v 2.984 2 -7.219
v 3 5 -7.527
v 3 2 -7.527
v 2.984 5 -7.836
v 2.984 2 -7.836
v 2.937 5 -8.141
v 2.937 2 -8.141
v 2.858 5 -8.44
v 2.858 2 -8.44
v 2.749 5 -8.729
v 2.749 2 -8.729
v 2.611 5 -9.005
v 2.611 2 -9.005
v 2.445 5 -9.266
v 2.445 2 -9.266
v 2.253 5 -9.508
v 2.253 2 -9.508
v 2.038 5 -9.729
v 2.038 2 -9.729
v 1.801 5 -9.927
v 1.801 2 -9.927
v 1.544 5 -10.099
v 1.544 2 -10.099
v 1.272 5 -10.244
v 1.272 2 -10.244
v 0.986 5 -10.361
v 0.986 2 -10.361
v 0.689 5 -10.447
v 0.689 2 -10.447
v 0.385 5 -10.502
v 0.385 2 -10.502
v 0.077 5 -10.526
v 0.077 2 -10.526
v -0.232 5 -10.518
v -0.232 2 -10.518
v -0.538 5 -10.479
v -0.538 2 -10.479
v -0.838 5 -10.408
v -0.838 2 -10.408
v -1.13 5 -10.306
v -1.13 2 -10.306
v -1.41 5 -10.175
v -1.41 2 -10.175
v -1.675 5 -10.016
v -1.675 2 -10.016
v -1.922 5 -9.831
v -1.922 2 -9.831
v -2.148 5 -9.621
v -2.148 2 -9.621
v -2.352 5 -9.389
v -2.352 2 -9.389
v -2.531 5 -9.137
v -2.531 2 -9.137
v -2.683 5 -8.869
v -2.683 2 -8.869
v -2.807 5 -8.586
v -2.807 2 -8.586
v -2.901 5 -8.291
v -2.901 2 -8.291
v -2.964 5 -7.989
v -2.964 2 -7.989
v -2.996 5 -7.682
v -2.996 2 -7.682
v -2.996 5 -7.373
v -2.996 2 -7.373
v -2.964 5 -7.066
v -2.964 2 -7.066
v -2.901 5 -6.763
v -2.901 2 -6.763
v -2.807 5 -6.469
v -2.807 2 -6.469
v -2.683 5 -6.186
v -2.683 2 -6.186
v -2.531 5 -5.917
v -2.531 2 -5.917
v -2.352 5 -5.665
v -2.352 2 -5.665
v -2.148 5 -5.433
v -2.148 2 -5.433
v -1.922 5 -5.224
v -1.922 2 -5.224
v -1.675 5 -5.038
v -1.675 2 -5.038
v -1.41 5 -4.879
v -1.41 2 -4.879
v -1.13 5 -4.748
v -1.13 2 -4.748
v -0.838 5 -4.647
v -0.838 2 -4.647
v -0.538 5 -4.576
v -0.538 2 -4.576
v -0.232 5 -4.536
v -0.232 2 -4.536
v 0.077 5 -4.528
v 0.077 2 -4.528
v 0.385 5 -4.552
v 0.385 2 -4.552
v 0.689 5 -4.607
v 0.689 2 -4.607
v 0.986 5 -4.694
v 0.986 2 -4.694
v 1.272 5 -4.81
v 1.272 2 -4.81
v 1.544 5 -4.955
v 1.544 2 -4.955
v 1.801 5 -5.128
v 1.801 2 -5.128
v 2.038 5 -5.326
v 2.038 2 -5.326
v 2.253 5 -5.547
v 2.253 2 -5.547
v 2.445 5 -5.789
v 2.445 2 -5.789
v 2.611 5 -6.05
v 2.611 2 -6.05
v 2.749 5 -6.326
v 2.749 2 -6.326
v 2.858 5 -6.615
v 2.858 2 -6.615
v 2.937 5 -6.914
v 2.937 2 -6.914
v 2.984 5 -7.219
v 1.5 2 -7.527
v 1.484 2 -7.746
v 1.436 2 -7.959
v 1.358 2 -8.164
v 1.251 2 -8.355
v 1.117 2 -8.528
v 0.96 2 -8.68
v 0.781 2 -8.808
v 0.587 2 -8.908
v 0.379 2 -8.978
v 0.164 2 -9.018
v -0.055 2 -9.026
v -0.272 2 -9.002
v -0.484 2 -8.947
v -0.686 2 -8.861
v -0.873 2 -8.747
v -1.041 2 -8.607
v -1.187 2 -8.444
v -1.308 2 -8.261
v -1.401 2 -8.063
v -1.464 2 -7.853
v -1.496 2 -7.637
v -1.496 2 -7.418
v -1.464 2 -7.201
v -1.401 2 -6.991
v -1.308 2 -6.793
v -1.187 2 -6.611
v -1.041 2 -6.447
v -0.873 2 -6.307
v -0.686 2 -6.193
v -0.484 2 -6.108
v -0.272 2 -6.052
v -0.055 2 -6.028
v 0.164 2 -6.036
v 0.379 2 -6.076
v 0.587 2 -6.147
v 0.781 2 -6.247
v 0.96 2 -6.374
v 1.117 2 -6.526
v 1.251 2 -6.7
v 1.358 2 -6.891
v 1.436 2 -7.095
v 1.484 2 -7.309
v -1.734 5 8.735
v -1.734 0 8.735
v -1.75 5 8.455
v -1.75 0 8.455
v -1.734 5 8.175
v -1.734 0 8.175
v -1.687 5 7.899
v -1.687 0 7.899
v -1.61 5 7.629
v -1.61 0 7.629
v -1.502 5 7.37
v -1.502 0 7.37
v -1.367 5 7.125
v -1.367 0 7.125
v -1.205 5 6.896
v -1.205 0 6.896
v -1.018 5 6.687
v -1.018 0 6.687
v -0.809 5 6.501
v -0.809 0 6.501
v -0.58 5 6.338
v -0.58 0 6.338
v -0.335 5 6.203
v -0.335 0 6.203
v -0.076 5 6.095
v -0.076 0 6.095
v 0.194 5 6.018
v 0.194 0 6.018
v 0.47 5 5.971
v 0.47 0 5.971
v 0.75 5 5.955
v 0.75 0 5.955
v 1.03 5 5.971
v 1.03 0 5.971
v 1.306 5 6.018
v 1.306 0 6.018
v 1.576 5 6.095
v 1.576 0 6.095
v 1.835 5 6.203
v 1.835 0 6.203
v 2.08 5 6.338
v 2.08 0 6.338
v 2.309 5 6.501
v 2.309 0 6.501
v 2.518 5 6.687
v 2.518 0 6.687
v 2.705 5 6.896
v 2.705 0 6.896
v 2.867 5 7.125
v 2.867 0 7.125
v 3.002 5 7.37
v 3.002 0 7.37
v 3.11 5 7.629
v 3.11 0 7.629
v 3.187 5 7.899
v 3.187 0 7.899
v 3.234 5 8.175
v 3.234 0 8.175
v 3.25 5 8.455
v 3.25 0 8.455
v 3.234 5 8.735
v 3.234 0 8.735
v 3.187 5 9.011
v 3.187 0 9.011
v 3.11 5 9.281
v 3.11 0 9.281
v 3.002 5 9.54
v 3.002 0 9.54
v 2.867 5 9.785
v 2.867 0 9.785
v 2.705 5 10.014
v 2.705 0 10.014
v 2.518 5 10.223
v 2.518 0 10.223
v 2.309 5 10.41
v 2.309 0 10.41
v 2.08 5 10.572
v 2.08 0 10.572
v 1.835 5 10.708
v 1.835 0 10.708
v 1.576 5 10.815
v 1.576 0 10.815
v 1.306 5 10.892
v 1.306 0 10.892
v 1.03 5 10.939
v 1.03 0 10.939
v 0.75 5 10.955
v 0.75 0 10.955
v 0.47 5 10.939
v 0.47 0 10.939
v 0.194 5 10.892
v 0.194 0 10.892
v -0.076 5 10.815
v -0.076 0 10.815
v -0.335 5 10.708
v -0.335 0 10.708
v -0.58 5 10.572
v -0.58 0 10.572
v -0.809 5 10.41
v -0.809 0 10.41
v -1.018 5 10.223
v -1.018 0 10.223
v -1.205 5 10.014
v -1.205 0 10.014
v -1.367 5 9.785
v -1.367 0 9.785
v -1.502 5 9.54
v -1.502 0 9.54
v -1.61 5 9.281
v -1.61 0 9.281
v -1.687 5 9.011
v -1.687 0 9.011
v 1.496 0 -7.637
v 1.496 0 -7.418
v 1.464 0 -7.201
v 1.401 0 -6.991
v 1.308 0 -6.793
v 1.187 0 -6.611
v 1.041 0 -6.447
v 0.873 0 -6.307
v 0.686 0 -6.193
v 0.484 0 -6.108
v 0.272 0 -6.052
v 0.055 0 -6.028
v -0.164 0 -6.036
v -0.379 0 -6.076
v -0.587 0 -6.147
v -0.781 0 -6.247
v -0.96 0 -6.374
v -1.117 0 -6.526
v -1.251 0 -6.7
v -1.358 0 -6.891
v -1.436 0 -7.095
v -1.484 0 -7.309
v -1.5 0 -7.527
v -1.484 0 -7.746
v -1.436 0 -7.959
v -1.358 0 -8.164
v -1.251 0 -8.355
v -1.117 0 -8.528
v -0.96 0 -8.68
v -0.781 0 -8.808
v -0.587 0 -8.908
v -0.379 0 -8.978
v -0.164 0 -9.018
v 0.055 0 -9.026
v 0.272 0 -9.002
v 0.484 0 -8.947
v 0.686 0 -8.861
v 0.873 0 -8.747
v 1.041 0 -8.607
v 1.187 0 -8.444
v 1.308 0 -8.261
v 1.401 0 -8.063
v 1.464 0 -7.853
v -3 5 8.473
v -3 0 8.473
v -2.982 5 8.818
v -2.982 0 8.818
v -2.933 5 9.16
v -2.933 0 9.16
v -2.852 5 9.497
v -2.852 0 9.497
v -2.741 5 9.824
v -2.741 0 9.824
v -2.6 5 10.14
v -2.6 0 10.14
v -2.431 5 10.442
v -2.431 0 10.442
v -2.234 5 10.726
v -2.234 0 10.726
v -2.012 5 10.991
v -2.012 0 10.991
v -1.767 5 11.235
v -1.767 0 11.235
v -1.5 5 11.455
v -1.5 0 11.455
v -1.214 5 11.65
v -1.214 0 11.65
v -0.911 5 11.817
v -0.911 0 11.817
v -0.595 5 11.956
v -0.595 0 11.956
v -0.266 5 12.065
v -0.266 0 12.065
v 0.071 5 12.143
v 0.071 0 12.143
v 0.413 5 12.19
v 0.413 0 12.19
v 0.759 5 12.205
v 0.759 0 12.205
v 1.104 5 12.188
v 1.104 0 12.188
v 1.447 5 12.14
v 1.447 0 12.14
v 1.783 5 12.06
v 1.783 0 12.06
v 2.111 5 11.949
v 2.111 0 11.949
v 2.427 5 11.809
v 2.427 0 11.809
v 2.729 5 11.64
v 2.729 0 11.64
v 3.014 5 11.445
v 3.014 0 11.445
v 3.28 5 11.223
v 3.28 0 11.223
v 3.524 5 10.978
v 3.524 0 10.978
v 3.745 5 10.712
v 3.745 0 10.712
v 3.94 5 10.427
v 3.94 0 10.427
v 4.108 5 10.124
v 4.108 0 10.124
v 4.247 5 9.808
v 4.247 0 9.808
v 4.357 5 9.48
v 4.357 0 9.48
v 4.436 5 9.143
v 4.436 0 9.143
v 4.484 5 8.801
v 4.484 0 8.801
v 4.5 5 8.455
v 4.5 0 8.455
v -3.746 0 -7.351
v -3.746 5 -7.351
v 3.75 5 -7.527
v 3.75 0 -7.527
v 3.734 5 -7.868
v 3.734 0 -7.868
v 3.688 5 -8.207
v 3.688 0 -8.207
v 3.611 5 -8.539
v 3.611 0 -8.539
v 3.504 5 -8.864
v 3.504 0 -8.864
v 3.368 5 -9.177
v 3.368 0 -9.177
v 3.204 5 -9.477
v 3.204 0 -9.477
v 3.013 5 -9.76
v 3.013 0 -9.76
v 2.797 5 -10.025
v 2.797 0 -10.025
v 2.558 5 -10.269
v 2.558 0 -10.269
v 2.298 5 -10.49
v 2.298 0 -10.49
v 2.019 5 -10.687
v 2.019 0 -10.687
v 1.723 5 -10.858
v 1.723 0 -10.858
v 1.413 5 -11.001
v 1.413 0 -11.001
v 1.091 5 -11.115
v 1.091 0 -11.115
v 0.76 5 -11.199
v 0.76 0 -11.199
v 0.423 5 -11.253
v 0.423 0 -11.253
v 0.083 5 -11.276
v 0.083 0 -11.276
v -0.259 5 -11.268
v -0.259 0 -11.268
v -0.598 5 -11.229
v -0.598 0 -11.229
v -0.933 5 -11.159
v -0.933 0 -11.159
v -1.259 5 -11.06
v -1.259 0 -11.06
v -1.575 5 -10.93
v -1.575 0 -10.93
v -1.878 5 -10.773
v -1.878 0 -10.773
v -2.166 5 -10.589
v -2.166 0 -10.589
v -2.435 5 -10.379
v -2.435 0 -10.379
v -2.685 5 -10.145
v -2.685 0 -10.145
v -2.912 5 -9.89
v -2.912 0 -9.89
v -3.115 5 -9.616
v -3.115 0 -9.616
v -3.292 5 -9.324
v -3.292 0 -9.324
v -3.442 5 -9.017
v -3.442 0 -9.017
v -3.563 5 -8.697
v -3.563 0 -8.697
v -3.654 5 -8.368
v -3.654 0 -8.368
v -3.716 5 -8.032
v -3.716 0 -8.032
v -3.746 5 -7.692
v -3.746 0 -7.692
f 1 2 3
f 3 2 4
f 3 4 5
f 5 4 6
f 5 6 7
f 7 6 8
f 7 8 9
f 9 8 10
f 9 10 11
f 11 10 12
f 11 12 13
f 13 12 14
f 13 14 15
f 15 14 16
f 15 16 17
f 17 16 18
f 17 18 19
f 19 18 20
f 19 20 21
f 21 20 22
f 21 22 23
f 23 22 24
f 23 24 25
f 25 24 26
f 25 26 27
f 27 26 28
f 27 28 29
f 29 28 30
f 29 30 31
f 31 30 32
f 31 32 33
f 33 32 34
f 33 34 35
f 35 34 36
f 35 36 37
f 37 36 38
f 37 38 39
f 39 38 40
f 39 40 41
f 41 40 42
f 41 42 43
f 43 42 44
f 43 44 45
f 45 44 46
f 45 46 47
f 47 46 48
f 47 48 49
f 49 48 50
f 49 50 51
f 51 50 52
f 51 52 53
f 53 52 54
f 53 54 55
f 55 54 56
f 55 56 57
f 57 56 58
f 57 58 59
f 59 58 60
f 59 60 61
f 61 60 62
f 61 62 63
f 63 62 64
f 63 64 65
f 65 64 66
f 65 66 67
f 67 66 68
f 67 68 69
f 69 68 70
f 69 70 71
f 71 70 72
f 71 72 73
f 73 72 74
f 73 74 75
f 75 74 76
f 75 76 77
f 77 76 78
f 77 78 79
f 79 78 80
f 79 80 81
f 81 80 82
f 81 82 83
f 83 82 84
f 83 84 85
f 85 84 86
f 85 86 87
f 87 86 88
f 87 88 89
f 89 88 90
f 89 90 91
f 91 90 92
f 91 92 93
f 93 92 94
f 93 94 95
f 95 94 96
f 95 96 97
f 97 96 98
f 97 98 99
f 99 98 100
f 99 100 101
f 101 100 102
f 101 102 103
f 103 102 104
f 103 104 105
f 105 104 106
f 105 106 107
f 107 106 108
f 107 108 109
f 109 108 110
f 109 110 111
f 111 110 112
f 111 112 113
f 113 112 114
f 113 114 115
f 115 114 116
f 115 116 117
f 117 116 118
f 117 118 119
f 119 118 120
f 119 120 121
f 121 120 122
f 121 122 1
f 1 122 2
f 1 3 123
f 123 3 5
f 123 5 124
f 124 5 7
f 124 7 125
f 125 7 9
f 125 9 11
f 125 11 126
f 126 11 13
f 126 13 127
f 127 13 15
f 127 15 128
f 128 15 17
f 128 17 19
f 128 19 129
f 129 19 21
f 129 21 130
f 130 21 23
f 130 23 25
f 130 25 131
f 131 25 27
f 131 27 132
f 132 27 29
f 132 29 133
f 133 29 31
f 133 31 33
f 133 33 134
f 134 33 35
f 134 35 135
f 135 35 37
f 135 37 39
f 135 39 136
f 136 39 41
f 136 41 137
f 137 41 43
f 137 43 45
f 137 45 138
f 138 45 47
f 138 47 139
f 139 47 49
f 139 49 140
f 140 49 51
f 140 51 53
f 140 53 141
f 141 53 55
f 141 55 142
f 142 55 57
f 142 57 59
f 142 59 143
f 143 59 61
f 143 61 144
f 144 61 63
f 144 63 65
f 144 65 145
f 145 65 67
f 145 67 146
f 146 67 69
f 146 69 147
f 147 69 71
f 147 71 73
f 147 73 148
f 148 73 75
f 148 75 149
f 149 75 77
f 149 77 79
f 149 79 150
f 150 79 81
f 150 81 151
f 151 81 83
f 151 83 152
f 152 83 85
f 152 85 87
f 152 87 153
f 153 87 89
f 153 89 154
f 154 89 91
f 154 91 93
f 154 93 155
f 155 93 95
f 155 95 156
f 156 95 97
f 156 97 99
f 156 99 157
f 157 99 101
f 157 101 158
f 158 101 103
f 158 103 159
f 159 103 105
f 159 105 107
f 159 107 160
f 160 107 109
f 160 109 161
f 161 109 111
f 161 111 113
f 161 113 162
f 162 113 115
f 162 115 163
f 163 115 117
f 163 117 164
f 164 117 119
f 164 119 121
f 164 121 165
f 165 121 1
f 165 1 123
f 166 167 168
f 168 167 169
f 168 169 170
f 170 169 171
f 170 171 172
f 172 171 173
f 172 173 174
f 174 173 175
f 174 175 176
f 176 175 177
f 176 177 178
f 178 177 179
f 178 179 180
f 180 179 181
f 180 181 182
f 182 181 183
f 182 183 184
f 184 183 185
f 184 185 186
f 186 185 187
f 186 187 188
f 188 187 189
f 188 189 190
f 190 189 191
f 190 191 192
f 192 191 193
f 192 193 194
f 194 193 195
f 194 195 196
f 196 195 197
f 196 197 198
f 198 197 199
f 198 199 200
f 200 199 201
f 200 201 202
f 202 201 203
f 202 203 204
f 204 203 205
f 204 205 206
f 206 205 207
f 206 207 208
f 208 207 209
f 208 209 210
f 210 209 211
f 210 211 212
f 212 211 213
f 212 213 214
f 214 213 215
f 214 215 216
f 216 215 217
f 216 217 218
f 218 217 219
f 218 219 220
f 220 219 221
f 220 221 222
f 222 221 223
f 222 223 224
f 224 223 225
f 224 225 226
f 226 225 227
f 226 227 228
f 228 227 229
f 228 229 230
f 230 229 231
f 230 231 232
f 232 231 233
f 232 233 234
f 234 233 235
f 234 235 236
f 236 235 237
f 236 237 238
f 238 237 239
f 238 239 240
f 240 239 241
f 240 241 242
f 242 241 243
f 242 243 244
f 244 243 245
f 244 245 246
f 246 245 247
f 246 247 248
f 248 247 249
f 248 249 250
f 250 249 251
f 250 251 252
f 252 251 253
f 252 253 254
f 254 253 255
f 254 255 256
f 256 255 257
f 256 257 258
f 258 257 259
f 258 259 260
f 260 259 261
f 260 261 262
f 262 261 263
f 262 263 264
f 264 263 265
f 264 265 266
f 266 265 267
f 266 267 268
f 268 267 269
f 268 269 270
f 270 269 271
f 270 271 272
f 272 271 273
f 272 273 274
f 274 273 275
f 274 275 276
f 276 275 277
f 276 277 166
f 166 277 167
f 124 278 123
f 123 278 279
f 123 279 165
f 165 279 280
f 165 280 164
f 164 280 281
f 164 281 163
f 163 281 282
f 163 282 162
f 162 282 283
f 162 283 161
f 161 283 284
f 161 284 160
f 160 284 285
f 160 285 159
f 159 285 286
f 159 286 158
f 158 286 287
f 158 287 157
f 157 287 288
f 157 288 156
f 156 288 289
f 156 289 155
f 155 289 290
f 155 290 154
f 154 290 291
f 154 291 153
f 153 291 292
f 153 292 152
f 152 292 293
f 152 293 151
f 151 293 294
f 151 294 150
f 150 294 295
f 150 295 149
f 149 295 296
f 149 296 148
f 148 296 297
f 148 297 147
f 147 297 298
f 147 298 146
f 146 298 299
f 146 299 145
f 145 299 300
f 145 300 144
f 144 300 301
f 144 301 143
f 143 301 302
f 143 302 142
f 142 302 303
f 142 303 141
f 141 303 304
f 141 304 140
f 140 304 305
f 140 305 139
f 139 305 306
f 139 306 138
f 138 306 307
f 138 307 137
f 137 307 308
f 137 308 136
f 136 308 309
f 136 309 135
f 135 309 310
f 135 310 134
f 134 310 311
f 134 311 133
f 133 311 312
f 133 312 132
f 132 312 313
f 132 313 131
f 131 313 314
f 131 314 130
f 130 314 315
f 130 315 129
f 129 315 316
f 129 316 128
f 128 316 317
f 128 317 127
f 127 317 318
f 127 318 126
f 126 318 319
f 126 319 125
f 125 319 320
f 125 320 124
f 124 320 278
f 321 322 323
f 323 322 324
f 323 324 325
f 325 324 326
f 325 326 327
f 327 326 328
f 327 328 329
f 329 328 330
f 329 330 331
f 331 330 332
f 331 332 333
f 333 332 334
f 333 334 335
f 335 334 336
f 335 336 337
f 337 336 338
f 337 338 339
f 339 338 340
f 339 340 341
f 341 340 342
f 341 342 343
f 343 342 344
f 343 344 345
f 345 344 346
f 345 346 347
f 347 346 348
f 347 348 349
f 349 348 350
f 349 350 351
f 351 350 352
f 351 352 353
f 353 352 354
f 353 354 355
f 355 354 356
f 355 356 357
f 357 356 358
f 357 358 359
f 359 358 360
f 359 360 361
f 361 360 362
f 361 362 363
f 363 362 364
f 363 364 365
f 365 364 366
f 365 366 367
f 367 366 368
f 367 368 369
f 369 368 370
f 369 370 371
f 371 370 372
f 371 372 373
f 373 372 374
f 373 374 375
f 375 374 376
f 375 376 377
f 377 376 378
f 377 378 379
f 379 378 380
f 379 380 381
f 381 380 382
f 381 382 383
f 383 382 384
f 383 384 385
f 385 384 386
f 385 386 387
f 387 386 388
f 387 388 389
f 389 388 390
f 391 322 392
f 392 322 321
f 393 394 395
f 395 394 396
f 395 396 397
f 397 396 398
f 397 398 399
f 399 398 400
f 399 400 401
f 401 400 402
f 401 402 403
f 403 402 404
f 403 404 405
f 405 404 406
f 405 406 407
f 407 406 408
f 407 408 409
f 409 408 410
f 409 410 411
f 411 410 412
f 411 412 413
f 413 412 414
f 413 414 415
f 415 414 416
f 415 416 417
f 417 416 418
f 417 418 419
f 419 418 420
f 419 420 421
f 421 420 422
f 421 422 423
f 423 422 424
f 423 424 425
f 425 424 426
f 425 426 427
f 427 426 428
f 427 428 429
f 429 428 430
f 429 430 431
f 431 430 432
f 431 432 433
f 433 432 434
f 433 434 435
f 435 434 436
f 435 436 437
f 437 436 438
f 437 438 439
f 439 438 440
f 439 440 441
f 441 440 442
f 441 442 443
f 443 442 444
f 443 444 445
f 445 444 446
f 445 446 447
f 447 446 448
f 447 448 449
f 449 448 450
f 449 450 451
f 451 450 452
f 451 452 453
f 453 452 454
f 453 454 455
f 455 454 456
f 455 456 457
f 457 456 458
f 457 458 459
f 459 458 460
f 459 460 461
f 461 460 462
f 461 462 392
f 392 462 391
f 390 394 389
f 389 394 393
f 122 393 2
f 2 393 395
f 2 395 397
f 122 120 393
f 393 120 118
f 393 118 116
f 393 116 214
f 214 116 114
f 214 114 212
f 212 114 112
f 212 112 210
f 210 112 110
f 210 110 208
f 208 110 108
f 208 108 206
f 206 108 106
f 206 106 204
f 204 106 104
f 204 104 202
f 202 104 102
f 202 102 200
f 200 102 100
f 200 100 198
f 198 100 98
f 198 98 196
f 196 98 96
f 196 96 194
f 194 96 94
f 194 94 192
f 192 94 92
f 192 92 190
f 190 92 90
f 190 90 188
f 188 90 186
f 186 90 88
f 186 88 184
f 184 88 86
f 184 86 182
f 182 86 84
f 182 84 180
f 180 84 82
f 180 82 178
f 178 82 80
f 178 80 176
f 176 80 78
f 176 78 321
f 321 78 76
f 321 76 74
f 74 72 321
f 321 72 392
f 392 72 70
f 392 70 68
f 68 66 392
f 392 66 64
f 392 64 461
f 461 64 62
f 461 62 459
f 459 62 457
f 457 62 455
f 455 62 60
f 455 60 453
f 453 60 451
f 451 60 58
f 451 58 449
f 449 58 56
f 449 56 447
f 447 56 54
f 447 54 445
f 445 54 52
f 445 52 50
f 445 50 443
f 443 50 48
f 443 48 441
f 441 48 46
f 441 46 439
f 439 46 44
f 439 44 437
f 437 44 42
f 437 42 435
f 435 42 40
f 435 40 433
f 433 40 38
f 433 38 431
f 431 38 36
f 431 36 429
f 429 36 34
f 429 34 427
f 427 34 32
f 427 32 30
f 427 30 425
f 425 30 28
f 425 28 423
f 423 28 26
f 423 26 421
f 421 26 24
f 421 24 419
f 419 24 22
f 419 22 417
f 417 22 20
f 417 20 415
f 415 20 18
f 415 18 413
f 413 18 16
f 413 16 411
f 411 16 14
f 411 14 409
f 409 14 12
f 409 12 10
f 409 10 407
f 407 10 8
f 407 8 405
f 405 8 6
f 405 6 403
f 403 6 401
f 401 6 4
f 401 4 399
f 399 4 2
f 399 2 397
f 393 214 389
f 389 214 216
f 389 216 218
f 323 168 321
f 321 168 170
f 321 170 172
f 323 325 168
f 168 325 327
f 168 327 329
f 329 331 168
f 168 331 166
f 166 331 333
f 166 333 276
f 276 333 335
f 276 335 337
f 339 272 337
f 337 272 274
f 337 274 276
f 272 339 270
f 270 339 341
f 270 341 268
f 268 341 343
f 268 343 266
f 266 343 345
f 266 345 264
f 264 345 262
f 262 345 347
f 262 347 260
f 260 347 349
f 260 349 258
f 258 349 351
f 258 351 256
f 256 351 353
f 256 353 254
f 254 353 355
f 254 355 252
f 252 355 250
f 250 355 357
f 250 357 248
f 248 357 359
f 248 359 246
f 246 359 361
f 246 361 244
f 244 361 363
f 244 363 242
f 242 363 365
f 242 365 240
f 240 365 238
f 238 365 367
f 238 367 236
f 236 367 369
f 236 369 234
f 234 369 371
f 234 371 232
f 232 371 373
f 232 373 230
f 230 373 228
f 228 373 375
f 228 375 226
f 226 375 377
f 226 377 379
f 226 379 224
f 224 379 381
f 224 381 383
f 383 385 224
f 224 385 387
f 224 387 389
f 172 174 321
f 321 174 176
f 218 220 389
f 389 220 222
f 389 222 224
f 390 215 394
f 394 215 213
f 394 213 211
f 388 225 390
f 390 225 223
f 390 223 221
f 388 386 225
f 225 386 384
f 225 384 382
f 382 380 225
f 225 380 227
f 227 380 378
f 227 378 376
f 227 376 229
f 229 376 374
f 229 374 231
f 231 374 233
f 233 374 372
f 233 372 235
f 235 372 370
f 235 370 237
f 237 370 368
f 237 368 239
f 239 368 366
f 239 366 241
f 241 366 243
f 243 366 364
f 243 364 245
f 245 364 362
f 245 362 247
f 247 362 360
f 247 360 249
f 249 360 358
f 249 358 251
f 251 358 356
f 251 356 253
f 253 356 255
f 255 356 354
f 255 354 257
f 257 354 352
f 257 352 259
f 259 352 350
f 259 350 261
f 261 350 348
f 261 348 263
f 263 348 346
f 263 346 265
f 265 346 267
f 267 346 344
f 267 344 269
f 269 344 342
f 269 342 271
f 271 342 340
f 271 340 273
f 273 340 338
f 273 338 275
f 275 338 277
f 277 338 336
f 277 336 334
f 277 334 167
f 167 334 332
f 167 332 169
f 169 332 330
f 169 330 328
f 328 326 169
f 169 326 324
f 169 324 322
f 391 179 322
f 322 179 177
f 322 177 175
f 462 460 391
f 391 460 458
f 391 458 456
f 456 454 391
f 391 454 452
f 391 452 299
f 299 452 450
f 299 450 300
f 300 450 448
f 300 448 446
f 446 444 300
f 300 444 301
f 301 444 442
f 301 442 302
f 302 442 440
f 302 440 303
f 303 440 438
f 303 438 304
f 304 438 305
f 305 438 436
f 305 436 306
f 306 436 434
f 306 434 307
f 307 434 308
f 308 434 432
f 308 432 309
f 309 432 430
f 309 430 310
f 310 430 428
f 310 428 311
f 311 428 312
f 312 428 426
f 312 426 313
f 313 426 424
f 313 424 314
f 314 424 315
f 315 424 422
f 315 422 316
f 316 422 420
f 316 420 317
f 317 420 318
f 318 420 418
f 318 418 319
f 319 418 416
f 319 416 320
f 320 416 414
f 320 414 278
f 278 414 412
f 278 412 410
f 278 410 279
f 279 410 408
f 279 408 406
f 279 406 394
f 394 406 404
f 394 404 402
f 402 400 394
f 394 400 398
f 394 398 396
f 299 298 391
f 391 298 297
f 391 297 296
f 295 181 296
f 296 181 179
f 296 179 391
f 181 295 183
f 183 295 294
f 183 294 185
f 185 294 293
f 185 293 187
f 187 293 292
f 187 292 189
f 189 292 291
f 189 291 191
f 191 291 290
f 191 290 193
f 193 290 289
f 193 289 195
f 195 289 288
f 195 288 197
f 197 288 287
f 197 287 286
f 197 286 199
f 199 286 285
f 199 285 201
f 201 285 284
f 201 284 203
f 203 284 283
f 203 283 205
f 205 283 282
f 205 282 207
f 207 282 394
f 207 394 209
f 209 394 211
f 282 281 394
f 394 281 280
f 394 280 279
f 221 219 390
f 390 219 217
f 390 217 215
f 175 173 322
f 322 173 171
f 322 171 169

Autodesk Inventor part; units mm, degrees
ref_plane "YZ Plane" through (0, 0, 0) normal (1, 0, 0) x (0, 1, 0)
ref_plane "XZ Plane" through (0, 0, 0) normal (0, 1, 0) x (-1, 0, 0)
ref_plane "XY Plane" through (0, 0, 0) normal (0, 0, 1) x (1, 0, 0)
sketch "Sketch1" plane through (0, 0, 0) normal (0, 1, 0) x (-1, 0, 0)
  circle A0 centre (-0.749959, 8.455141) radius 2.5
  circle A1 centre (0, -7.527273) radius 1.5
  circle A2 centre (-0.749959, 8.455141) radius 3.75
  circle A3 centre (0, -7.527273) radius 3
  line L0 (3, 8.472727) -> (3, -7.527273)
  line L1 (-4.499959, 8.455141) -> (-2.987099, -7.805192)
  circle A4 centre (0, -7.527273) radius 3.75
  line L2 (-4.499959, 8.455141) -> (-3.75, -7.527273)
  line L3 (3, 8.472727) -> (3.745841, -7.350712)
  point P0 (0, 0)
  dimension "d0" = 16
  dimension "d1" = 5
  dimension "d2" = 3
  dimension "d3" = 7.5
  dimension "d4" = 6
  dimension "d10" = 7.5
sketch "Sketch1 outline for Extrusion1" plane through (0, 0, 0) normal (0, 1, 0) x (-1, 0, 0)
  arc A0 (3, 8.472727) -> (-4.499959, 8.455141) centre (-0.749959, 8.455141) ccw
  line L0 (-4.499959, 8.455141) -> (-3.75, -7.527273)
  arc A1 (-3.75, -7.527273) -> (3.745841, -7.350712) centre (0, -7.527273) ccw
  line L1 (3.745841, -7.350712) -> (3, 8.472727)
  circle A2 centre (0, -7.527273) radius 1.5
  circle A3 centre (-0.749959, 8.455141) radius 2.5
extrude "Extrusion1" add sketch "Sketch1 outline for Extrusion1" along normal blind 5
sketch "Sketch2" plane through (0, 5, 0) normal (0, 1, 0) x (1, 0, 0)
  circle A0 centre (0, 7.527273) radius 1.5
  circle A1 centre (0, 7.527273) radius 3
  point P0 (0, 0)
  point P1 (3, 7.527273)
  dimension "d7" = 6
extrude "Extrusion2" cut sketch "Sketch2" against normal blind 3
sketch "Sketch3" plane through (0, 5, 0) normal (0, 1, 0) x (1, 0, 0)
  circle A0 centre (0.749959, -8.455141) radius 2.5
  circle A1 centre (0, 7.527273) radius 3
  circle A2 centre (0, 7.527273) radius 1.5
  arc A3 (3.75, 7.527273) -> (-3.745841, 7.350712) centre (0, 7.527273) ccw
  point P0 (0, 0)
properties part number "Redesign_Linkage_3DPrint"
